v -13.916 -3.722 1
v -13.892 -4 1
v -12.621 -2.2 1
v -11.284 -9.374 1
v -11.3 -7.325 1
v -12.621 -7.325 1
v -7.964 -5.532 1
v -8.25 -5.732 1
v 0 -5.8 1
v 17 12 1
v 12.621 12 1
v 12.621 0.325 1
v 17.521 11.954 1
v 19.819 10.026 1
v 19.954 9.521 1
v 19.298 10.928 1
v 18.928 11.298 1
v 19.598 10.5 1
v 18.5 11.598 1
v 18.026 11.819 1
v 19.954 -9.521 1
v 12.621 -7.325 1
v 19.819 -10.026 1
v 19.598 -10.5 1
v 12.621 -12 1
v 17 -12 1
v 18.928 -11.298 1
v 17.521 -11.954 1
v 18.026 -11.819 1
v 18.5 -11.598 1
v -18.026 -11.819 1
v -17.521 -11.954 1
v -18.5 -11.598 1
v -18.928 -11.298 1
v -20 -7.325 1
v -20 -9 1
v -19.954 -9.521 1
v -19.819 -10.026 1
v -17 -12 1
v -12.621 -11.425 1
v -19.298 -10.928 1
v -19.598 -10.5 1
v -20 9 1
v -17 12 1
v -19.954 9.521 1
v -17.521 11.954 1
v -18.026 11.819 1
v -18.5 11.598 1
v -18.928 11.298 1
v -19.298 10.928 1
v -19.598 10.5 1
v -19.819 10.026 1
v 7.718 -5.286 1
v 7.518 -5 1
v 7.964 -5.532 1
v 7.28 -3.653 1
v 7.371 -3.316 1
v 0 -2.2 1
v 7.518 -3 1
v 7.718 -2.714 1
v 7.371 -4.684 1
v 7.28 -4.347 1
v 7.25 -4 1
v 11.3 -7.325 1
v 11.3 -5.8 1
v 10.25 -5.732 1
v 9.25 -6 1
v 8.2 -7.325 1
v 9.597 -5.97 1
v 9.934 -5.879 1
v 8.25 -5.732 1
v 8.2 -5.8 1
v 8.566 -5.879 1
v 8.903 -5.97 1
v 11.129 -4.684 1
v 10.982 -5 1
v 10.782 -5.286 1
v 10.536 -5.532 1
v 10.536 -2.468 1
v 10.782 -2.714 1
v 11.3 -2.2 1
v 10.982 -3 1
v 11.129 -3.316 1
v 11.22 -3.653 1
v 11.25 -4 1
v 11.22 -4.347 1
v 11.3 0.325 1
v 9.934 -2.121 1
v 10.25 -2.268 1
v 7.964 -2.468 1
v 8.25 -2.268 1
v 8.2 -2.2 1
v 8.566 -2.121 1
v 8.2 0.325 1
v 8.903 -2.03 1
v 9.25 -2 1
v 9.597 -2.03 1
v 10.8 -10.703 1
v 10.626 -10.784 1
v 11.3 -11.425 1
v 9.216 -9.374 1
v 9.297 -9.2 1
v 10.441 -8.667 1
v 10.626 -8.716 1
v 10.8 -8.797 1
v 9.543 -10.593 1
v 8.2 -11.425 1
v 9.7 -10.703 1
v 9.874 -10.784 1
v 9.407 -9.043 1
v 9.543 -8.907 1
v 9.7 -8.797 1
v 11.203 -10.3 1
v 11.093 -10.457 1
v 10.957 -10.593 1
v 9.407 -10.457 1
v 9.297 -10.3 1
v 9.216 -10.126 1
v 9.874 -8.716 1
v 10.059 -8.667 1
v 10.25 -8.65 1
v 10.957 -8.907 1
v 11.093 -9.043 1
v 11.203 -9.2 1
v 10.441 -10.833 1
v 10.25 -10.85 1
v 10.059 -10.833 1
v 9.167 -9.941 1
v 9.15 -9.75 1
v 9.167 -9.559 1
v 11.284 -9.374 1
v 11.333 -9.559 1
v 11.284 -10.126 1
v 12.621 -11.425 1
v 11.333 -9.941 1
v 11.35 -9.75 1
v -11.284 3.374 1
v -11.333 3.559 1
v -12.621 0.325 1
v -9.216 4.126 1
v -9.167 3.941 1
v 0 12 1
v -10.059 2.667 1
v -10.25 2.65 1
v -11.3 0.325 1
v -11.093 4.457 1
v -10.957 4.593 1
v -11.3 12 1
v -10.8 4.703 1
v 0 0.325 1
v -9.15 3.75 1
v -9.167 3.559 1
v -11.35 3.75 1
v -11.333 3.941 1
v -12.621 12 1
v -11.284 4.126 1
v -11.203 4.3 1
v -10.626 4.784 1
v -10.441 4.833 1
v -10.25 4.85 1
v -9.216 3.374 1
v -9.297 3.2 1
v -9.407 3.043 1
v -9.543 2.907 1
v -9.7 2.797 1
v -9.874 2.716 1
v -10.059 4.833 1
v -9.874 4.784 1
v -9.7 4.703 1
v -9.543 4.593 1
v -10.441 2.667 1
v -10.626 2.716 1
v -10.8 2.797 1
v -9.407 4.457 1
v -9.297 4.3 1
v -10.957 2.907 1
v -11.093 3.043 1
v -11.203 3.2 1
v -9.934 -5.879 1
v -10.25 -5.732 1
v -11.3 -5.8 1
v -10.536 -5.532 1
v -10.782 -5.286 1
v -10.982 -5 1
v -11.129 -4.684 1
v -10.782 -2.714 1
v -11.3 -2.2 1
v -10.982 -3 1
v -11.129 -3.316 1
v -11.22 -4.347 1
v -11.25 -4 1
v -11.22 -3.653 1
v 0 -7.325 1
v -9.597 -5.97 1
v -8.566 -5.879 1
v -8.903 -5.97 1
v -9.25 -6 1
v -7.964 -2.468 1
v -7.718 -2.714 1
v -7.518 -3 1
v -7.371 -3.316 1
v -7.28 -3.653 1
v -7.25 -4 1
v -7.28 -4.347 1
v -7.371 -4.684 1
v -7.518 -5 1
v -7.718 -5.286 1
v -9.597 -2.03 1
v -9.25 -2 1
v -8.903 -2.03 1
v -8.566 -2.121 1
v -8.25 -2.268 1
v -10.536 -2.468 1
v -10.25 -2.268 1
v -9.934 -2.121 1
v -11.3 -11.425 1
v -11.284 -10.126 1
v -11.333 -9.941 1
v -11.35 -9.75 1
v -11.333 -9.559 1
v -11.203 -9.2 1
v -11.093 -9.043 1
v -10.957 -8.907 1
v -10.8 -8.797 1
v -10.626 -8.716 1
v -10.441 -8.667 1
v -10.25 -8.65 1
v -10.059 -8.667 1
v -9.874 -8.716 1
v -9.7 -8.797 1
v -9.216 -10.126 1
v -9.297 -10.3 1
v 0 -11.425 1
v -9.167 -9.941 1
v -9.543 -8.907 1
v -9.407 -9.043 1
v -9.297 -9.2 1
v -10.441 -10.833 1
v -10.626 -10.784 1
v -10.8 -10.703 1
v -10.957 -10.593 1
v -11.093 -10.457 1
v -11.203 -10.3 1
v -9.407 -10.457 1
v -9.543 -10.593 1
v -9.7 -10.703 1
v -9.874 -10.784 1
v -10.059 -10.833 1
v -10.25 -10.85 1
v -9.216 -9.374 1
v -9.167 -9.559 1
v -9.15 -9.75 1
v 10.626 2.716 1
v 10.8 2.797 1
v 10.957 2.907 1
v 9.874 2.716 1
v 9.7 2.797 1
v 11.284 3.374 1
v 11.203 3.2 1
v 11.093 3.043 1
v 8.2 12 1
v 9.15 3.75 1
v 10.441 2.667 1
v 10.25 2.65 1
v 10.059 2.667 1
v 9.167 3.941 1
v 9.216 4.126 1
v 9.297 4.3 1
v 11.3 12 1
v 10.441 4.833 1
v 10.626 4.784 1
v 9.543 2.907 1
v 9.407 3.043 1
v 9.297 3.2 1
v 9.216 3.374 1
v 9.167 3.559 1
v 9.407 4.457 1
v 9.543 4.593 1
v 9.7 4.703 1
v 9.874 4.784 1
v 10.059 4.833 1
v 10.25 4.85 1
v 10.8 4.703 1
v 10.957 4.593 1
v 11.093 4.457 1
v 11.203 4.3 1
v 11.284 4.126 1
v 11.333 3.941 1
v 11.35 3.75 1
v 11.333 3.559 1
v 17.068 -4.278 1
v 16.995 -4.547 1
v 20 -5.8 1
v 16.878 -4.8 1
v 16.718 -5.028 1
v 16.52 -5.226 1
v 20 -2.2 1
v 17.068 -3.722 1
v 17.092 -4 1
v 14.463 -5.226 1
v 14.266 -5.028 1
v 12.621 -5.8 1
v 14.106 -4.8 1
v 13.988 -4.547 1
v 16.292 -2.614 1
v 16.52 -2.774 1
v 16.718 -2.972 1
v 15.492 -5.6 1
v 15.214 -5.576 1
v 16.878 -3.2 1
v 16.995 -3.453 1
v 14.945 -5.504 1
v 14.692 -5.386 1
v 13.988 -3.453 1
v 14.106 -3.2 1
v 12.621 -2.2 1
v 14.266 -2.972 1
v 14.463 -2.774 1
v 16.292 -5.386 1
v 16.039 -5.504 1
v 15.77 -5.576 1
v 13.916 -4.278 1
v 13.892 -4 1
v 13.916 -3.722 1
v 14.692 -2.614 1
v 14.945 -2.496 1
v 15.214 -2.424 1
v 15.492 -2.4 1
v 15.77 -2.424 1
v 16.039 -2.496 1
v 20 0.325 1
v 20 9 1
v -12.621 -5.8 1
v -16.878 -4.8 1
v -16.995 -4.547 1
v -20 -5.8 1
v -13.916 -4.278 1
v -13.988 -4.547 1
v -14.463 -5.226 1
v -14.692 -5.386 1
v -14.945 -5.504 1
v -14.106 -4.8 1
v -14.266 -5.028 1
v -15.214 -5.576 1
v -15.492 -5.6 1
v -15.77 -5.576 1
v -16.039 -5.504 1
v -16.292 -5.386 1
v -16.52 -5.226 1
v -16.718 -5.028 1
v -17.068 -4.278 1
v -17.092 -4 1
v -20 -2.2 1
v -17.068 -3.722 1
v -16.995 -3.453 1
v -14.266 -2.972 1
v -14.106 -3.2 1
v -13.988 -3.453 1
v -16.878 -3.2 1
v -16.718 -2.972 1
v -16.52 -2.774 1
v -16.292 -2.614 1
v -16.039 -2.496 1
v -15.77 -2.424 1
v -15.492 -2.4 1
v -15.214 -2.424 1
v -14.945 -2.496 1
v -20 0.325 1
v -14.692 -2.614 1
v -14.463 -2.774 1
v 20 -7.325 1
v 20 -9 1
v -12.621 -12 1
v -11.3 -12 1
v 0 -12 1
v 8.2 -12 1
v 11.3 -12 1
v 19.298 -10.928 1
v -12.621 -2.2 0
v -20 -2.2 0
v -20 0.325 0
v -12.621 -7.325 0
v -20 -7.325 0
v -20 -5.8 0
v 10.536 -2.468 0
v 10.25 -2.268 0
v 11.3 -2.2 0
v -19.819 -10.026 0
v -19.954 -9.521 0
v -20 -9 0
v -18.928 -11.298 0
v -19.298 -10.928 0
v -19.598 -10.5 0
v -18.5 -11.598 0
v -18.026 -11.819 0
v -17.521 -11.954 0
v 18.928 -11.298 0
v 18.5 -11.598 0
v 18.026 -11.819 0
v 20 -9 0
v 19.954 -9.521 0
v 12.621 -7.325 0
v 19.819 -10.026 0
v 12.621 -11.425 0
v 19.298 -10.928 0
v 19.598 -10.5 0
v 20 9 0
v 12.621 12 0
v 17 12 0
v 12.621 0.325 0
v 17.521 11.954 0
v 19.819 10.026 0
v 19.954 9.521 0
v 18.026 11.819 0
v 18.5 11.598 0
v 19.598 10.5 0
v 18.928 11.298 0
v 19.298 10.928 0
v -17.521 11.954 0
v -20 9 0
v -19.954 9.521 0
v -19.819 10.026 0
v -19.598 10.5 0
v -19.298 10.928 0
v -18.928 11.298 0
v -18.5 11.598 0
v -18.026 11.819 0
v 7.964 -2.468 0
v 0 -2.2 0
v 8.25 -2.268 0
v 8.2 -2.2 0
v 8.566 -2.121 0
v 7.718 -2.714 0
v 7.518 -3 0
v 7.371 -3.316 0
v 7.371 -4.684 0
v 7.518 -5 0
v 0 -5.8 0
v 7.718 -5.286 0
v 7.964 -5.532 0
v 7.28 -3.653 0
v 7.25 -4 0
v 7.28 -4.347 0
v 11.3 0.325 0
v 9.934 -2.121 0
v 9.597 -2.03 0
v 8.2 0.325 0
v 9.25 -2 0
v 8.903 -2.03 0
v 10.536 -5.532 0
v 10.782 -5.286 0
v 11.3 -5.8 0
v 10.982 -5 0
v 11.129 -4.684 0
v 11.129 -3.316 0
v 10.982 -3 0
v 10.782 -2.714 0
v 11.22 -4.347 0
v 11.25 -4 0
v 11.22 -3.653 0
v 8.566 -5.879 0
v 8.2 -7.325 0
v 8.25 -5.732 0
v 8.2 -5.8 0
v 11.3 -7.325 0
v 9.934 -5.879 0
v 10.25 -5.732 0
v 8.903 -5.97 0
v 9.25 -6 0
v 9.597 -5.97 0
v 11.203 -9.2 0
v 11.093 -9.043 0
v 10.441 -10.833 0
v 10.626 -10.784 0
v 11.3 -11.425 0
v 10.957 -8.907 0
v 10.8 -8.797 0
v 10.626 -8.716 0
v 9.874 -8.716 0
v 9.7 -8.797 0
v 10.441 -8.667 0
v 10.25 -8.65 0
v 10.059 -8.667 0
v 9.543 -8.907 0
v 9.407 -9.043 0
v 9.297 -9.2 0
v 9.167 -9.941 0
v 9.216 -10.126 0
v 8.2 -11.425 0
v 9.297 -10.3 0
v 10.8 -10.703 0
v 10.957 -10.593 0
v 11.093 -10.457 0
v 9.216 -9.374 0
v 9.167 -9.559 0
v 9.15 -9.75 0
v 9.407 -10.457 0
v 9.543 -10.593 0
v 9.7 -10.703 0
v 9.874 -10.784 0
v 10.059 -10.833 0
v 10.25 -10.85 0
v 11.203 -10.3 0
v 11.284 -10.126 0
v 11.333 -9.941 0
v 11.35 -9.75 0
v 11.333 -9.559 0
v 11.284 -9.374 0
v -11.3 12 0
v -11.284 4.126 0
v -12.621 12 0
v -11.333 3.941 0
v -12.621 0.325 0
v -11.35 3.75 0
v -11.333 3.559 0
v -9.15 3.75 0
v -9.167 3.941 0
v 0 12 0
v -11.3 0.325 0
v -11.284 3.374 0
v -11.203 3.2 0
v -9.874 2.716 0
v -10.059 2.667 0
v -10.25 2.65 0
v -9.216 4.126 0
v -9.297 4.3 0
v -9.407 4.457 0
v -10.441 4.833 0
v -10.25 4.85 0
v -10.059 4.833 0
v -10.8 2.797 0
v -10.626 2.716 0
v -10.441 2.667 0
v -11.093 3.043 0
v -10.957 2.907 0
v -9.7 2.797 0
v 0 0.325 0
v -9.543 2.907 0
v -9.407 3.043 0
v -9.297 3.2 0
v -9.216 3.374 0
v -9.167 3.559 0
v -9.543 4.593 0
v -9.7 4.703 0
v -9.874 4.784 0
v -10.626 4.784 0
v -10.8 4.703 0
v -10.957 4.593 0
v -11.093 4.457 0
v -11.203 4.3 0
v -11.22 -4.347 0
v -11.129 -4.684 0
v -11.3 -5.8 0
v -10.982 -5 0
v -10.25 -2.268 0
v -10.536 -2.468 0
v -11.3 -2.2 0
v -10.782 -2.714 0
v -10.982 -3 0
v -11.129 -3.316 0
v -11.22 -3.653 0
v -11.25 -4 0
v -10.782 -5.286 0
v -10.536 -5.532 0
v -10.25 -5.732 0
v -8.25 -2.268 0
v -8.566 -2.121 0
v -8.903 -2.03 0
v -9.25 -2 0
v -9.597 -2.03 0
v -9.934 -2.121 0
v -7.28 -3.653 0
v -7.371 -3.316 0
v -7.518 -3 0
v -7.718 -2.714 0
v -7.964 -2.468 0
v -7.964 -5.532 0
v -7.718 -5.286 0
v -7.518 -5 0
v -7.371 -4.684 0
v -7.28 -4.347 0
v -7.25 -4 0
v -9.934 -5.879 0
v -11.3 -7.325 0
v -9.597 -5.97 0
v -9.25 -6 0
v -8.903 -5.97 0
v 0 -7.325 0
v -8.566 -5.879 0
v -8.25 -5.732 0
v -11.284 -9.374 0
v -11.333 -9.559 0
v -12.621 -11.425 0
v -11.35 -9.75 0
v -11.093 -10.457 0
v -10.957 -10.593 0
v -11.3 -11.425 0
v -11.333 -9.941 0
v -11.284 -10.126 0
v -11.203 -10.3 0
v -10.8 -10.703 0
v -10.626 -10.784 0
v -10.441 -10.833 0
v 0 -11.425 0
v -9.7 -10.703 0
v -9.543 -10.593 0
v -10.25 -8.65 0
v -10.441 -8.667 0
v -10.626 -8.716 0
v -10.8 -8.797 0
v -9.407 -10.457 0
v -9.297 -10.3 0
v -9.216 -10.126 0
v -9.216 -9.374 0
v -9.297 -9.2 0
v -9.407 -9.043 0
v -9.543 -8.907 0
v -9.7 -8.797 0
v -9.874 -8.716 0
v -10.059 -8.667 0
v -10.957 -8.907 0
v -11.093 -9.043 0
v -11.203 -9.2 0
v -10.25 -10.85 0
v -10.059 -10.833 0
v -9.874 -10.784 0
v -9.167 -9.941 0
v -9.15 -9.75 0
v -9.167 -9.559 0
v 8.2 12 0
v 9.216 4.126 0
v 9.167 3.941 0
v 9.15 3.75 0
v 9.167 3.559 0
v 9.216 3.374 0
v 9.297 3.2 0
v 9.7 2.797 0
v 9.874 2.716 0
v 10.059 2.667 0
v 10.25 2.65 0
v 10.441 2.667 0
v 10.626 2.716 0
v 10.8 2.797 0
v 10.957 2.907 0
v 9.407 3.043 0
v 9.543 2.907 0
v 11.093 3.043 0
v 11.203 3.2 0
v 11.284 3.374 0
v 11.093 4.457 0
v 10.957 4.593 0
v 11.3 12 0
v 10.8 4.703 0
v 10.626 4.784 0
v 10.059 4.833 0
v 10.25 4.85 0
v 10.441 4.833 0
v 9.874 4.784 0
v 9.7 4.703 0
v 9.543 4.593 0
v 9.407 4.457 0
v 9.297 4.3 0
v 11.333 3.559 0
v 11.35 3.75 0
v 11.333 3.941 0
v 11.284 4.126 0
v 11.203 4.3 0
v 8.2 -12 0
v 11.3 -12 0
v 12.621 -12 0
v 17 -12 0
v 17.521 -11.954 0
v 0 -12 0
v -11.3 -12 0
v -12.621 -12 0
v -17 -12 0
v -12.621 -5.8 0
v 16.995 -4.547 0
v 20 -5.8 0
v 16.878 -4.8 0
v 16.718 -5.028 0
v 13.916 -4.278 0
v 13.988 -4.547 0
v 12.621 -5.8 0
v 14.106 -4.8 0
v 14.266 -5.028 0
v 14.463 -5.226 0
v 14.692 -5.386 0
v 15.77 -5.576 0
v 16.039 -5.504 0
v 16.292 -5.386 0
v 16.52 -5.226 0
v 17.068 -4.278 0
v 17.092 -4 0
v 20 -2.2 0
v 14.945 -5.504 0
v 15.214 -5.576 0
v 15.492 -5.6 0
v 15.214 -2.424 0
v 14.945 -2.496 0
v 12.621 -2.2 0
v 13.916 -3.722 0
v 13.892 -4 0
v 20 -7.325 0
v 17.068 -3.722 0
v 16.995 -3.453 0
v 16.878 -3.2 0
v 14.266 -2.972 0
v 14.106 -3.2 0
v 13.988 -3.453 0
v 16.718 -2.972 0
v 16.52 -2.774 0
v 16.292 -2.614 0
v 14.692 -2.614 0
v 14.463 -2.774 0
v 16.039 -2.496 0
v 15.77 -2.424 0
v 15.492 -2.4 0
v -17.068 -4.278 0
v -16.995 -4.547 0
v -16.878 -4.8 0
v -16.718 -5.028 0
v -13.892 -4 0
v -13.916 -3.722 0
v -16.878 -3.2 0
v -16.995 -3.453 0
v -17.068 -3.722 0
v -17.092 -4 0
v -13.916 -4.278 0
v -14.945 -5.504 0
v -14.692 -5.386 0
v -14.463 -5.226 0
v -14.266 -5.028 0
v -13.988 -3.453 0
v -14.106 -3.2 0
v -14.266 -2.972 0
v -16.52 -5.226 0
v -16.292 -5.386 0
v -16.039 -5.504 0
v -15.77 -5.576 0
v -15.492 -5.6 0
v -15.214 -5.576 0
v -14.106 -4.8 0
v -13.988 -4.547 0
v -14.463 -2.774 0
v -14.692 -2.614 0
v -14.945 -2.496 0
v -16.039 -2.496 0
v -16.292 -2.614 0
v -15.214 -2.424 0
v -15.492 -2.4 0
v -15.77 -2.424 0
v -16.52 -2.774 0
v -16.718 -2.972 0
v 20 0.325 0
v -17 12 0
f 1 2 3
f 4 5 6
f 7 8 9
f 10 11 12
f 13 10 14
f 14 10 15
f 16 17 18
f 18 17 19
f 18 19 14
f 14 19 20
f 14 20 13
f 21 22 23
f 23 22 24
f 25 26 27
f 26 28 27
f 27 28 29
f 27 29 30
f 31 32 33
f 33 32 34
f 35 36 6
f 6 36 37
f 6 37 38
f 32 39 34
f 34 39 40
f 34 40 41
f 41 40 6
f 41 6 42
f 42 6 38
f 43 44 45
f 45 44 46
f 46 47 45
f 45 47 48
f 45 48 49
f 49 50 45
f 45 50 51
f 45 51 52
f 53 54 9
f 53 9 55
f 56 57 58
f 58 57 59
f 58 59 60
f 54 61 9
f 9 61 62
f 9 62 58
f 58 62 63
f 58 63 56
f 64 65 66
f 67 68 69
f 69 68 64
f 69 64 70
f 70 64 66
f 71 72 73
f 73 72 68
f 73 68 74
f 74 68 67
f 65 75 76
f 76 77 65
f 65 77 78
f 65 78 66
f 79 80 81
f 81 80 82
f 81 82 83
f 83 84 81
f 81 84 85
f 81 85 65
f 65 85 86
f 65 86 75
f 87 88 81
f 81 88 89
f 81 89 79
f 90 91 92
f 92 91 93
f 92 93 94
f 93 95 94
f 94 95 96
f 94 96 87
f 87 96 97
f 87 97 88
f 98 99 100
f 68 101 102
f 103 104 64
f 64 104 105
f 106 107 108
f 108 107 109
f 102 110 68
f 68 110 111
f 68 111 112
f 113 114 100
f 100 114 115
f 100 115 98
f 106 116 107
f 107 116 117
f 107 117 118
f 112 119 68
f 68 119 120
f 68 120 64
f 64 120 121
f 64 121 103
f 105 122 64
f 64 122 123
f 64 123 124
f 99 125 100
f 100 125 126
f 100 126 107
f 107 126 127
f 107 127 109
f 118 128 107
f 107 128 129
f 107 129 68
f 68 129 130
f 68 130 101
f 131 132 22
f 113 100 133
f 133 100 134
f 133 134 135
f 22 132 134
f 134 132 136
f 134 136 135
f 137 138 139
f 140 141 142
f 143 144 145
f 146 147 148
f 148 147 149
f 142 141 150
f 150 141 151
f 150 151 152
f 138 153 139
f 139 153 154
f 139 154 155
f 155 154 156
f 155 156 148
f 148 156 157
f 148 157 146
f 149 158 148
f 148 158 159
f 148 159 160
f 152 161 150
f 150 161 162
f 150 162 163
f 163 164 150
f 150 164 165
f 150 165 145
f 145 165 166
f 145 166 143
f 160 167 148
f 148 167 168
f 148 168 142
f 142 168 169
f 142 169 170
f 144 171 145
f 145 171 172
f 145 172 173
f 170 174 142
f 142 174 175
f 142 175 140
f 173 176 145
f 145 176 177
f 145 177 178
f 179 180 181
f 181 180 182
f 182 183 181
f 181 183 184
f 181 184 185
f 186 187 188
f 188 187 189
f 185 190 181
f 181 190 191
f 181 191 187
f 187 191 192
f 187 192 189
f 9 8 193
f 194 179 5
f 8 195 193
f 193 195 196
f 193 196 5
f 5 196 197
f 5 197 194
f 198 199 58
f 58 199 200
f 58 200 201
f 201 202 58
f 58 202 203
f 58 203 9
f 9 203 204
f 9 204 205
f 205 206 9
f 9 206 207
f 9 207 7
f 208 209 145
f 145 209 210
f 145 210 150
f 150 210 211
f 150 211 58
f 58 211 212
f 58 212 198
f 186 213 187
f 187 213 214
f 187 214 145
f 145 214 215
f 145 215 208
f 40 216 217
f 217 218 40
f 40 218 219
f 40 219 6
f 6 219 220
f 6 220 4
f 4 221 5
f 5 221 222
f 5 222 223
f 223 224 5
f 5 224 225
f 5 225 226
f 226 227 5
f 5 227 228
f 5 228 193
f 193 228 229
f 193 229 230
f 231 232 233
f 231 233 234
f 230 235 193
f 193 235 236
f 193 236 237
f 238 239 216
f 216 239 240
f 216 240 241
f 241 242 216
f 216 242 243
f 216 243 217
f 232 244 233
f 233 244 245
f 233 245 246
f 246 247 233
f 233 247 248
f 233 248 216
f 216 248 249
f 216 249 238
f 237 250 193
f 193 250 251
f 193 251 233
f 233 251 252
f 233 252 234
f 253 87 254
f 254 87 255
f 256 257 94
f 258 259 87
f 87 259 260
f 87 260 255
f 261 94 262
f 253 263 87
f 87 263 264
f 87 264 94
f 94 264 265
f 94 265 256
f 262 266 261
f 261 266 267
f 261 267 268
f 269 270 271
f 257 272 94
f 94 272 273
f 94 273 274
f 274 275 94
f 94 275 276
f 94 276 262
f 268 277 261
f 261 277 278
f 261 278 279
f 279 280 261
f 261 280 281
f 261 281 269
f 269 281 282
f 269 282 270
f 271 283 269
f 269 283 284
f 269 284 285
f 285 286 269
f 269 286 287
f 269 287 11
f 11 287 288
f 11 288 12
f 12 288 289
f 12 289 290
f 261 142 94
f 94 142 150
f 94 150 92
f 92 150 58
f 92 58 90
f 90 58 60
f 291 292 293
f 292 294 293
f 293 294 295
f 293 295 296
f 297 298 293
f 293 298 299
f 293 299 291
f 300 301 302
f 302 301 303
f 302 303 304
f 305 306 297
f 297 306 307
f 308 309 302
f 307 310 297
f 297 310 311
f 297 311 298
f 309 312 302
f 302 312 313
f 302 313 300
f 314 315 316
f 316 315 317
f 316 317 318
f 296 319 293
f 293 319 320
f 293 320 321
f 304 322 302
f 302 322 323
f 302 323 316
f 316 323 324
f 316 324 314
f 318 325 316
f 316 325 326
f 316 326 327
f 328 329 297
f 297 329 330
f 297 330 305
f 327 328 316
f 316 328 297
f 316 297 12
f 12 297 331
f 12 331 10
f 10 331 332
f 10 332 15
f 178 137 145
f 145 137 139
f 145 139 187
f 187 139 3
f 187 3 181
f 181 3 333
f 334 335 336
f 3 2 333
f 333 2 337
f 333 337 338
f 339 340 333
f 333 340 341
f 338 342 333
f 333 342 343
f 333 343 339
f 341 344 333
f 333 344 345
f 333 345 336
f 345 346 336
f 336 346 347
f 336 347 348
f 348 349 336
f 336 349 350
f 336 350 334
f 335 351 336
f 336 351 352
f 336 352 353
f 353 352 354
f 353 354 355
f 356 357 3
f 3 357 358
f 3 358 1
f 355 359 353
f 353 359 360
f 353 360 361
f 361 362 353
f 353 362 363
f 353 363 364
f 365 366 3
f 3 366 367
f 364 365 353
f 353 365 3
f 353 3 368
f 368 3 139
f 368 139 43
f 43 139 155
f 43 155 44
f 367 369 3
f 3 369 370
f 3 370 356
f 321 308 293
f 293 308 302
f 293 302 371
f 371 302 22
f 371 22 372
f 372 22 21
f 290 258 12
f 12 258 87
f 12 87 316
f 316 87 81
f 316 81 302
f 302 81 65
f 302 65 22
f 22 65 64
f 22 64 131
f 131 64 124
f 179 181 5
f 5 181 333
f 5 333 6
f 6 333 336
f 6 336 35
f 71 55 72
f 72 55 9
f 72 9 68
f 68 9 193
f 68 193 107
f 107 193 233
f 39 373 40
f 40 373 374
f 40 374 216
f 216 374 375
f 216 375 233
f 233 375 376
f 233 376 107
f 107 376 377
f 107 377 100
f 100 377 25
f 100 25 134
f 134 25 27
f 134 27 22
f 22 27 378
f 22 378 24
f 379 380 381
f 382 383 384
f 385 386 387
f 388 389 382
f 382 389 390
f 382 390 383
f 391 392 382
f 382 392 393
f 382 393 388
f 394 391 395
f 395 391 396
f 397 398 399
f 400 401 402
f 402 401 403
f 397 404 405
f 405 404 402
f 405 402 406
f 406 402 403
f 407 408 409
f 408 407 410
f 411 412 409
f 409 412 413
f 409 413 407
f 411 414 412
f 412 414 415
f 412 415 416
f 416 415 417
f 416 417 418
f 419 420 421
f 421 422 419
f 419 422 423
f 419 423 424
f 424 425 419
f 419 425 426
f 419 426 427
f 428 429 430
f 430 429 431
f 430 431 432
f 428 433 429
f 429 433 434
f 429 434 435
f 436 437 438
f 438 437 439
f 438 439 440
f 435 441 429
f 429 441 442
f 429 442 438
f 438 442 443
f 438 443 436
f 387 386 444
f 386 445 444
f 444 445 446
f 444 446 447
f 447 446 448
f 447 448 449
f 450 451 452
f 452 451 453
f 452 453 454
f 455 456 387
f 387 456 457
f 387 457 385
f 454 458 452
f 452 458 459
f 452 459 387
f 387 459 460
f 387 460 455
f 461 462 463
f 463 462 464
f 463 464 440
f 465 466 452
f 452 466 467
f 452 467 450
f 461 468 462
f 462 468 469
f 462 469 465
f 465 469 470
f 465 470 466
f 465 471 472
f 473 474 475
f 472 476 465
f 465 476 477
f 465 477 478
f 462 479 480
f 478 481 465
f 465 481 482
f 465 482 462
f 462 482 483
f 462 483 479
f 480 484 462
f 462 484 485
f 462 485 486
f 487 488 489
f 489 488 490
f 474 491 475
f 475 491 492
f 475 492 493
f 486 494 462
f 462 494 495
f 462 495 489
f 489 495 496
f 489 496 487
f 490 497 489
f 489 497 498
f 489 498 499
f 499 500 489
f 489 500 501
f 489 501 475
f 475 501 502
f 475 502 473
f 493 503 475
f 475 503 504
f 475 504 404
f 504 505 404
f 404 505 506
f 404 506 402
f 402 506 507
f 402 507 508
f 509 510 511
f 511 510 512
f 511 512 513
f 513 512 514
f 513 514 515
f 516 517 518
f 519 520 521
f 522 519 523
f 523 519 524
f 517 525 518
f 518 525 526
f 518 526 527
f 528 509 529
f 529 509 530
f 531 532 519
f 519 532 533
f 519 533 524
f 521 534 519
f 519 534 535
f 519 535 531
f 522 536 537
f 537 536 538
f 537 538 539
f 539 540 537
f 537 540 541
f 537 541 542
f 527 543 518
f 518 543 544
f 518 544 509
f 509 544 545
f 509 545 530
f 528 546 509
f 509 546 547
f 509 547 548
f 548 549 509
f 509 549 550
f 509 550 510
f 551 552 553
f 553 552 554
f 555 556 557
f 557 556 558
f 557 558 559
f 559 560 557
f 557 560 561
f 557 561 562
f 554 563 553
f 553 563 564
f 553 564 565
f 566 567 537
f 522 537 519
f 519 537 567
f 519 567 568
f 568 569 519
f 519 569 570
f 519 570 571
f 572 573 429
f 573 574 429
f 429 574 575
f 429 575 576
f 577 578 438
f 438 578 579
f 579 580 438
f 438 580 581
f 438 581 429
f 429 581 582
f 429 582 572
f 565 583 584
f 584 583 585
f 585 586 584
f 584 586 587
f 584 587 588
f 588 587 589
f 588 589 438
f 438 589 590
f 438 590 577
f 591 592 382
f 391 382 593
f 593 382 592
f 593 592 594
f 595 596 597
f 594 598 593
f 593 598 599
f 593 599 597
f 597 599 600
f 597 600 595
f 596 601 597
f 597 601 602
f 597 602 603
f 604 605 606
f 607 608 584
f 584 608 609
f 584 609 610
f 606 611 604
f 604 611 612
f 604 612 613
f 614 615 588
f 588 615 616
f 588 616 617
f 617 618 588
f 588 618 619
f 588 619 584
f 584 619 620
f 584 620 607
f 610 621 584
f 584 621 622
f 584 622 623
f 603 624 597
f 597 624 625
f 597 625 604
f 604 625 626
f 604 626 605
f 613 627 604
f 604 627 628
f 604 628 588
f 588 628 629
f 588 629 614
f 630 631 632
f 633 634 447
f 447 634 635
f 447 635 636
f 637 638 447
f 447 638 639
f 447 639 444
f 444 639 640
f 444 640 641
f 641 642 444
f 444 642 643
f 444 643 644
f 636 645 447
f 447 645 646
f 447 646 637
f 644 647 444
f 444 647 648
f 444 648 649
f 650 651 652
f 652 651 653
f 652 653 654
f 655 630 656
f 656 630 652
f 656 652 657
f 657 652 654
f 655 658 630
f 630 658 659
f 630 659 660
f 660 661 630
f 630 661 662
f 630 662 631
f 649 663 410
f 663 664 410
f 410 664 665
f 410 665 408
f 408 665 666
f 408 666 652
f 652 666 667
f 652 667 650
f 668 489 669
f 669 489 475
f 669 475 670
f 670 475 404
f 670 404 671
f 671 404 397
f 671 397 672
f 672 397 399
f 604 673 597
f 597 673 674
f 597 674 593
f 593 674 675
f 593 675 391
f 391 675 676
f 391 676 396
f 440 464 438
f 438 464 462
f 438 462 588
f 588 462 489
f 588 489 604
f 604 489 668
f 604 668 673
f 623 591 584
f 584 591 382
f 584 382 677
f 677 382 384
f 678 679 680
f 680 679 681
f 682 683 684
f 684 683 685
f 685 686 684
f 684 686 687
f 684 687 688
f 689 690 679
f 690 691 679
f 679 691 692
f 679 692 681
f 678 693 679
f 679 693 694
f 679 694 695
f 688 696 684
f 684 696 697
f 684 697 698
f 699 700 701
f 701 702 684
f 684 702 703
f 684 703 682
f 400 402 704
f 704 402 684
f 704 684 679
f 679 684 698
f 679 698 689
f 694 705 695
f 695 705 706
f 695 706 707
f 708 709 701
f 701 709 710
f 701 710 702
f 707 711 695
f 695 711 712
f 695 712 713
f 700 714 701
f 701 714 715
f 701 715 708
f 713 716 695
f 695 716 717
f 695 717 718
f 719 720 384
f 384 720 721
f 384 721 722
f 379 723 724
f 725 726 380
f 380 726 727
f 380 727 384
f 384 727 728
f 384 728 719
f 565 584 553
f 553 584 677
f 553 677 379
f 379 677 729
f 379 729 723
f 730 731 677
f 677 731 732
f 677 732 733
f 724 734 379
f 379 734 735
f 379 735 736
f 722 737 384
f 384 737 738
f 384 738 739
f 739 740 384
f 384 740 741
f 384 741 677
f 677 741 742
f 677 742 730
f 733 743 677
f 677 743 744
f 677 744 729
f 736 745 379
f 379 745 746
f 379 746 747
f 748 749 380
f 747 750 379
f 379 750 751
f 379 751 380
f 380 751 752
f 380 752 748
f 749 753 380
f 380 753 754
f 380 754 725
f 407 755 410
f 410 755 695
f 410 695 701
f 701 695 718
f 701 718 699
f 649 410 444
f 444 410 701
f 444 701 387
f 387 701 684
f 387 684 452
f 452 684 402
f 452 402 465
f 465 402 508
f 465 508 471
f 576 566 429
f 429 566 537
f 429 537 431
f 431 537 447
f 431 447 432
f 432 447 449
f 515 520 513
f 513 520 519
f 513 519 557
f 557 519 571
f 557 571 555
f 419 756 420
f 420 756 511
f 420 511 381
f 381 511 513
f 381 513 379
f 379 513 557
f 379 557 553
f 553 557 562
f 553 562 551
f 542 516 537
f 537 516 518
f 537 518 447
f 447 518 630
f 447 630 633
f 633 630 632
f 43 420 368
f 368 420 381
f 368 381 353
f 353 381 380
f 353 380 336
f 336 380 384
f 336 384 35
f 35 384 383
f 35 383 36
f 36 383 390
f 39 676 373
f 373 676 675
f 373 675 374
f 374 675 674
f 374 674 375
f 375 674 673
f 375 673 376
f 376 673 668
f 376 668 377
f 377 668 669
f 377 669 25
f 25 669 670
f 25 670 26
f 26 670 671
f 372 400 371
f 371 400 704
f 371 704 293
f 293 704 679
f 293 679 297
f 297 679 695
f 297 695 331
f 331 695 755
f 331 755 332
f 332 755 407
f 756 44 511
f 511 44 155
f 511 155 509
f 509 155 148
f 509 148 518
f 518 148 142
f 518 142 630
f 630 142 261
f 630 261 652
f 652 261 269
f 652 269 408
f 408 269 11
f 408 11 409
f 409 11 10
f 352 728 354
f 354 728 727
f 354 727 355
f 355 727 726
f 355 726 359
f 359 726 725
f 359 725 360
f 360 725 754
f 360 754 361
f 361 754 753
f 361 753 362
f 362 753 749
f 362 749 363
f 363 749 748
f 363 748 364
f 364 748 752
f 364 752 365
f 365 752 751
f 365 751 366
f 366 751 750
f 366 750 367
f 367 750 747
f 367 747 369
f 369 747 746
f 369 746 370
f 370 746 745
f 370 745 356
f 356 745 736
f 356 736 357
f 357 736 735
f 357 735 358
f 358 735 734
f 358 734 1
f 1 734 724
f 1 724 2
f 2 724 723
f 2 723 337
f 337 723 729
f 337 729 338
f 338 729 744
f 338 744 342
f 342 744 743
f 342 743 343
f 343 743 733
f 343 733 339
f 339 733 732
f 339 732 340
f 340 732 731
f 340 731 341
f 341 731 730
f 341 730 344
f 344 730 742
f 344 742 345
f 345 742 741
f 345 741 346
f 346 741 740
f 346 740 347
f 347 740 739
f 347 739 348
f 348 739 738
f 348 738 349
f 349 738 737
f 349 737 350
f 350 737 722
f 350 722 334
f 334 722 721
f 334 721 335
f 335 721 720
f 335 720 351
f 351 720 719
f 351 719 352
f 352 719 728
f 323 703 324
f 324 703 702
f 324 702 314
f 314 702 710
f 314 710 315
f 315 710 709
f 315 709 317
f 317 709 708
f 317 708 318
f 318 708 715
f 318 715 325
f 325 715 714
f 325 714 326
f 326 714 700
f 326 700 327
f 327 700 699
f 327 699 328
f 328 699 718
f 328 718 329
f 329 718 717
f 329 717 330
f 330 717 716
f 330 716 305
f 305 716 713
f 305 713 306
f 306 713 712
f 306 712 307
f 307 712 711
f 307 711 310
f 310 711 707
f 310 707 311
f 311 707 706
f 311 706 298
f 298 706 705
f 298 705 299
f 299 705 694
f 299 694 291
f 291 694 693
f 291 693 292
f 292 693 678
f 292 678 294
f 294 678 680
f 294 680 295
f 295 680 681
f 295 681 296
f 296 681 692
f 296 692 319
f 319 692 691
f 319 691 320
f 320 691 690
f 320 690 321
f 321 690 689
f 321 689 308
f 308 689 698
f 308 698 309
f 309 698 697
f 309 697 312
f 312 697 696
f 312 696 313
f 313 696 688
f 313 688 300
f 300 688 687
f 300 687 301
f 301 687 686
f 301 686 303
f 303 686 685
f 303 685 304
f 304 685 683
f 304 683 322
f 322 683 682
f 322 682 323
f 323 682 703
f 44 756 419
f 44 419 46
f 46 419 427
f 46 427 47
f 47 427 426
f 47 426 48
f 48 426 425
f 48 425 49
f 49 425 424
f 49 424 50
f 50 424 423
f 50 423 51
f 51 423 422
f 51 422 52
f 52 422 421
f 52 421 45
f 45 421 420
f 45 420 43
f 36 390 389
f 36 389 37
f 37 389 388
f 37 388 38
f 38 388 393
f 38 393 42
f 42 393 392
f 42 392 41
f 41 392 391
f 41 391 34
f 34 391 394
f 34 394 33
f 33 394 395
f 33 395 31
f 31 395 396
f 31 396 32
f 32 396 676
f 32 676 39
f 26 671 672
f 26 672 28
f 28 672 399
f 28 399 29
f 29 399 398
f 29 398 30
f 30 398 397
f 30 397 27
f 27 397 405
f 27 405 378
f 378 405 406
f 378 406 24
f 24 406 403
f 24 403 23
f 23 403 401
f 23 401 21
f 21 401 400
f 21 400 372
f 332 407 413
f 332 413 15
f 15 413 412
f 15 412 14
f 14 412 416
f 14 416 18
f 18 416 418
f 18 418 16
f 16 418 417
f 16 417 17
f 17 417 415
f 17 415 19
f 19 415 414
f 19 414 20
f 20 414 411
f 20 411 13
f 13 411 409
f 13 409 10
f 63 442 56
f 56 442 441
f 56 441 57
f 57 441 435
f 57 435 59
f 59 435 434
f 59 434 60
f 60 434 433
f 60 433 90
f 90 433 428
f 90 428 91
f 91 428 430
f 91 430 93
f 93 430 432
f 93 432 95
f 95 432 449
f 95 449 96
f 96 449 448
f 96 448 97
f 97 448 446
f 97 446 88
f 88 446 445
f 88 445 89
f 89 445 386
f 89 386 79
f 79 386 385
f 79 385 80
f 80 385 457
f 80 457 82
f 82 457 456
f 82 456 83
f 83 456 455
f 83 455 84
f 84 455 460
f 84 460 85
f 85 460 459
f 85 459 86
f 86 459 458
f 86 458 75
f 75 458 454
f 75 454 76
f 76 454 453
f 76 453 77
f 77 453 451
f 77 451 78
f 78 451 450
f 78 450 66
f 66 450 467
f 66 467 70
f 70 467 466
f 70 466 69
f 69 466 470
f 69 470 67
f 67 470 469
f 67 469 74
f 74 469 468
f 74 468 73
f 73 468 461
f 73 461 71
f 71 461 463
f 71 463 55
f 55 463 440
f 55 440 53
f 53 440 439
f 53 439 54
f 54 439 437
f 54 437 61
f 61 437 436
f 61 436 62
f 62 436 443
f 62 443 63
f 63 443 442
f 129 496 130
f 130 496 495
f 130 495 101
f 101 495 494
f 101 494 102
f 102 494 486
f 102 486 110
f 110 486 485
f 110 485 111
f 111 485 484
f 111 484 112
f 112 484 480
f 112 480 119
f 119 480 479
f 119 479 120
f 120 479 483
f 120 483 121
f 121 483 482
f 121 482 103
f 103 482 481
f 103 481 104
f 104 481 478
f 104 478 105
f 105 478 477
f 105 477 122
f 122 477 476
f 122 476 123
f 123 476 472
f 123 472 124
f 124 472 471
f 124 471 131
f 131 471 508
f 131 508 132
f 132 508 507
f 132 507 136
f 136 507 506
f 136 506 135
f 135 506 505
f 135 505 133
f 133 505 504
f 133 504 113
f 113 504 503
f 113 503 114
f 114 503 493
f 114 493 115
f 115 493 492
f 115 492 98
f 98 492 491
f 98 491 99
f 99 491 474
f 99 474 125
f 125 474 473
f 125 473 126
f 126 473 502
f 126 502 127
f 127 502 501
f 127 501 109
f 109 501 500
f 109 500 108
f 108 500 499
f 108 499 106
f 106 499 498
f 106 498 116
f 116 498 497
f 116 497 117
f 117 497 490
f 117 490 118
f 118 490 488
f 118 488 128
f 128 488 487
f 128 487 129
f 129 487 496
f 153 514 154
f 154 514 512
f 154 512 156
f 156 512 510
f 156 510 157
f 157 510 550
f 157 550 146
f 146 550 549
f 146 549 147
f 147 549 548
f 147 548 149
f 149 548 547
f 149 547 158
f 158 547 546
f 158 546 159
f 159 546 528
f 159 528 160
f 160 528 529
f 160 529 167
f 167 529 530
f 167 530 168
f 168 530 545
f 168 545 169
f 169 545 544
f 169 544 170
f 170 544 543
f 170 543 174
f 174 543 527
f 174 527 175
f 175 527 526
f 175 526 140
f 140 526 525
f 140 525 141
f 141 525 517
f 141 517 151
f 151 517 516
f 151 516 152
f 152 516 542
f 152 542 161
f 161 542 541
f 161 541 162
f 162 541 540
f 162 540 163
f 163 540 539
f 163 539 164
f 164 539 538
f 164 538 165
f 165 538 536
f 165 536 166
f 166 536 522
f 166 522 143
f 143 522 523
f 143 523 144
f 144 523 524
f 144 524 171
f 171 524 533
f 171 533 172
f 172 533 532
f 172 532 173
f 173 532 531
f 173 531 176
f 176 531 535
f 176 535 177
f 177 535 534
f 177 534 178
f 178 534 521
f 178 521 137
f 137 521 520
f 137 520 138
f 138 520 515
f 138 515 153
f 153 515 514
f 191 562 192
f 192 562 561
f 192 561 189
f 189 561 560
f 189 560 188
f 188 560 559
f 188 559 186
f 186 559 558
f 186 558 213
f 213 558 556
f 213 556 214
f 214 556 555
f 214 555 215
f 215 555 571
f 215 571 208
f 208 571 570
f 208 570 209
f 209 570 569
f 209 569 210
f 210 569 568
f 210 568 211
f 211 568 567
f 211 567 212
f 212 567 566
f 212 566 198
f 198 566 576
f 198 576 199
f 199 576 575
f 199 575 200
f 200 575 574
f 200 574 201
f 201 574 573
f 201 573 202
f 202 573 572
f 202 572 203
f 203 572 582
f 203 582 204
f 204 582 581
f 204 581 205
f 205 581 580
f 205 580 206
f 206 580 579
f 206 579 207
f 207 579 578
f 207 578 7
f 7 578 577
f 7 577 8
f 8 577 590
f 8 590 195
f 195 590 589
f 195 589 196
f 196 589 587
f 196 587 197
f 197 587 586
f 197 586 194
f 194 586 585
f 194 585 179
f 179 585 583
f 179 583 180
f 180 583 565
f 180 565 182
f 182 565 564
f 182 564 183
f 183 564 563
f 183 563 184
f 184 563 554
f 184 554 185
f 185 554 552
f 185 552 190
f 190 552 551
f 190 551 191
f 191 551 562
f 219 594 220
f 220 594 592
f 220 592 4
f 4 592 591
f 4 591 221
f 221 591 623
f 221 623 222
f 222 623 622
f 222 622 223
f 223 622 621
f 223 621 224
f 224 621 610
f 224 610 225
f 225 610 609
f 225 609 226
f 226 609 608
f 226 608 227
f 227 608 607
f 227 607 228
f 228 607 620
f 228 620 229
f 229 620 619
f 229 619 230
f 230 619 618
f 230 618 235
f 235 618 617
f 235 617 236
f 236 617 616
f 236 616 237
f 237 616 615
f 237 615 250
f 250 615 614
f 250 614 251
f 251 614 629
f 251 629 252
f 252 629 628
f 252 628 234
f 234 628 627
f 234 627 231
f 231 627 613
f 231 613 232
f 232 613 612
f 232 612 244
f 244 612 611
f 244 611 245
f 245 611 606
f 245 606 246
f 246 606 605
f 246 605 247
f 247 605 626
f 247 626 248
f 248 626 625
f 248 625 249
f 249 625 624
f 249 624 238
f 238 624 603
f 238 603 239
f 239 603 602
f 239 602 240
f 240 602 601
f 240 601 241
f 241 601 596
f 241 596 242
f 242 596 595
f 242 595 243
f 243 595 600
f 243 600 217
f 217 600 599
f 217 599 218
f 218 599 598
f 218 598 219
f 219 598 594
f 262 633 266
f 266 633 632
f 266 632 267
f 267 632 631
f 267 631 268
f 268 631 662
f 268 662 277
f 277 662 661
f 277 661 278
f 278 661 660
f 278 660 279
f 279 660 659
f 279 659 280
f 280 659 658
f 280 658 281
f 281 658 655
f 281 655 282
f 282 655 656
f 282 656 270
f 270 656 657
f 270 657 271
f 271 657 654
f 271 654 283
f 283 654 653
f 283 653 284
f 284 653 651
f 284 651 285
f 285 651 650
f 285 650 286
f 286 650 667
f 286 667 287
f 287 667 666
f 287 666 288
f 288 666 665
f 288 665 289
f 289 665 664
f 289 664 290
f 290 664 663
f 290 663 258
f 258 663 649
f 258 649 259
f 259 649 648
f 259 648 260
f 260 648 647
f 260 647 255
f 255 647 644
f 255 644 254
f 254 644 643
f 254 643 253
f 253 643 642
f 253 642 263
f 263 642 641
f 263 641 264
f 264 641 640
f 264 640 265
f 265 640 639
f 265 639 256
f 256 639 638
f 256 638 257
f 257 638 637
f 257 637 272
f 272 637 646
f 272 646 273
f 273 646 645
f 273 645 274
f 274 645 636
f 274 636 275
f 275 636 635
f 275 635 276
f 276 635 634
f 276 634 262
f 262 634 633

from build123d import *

# Parameters (mm, degrees)
SKETCH1_W           = 40
SKETCH1_H           = 24
SKETCH1_R           = 1.6
BOSS_EXTRUDE1_DEPTH = 1
FILLET1_R           = 3
CUT_EXTRUDE1_DEPTH  = 24.34523506


with BuildPart() as part:
    # Sketch1 → Boss-Extrude1 (new body)
    with BuildSketch(Plane.XY):
        Rectangle(SKETCH1_W, SKETCH1_H)
        with Locations((-15.491933385, -4)):
            Circle(SKETCH1_R, mode=Mode.SUBTRACT)
        with Locations(Location((15.491933385, -4, 0), (0, 0, 180))):
            Circle(SKETCH1_R, mode=Mode.SUBTRACT)
    extrude(amount=BOSS_EXTRUDE1_DEPTH)

    # Fillet1
    fillet1_edges = [part.edges().sort_by_distance(p)[0] for p in [
        (-20, 12, 0.5),
        (20, 12, 0.5),
        (20, -12, 0.5),
        (-20, -12, 0.5),
    ]]
    fillet(fillet1_edges, radius=FILLET1_R)

    # Sketch2 → Cut-Extrude1 (cut, through all)
    with BuildSketch(Plane(origin=(0, 0, 0), x_dir=(-1, 0, 0), z_dir=(0, 0, -1))):
        with BuildLine():
            ThreePointArc((10.25, 4.85), (9.15, 3.75), (10.25, 2.65))
            ThreePointArc((10.25, 2.65), (11.35, 3.75), (10.25, 4.85))
        make_face()
        with BuildLine():
            ThreePointArc((10.25, -8.65), (9.15, -9.75), (10.25, -10.85))
            ThreePointArc((10.25, -10.85), (11.35, -9.75), (10.25, -8.65))
        make_face()
        with BuildLine():
            ThreePointArc((-10.25, 4.85), (-11.35, 3.75), (-10.25, 2.65))
            ThreePointArc((-10.25, 2.65), (-9.15, 3.75), (-10.25, 4.85))
        make_face()
        with BuildLine():
            ThreePointArc((-10.25, -8.65), (-11.35, -9.75), (-10.25, -10.85))
            ThreePointArc((-10.25, -10.85), (-9.15, -9.75), (-10.25, -8.65))
        make_face()
        with BuildLine():
            ThreePointArc((-9.25, -6), (-7.25, -4), (-9.25, -2))
            ThreePointArc((-9.25, -2), (-11.25, -4), (-9.25, -6))
        make_face()
        with BuildLine():
            ThreePointArc((9.25, -2), (7.25, -4), (9.25, -6))
            ThreePointArc((9.25, -6), (11.25, -4), (9.25, -2))
        make_face()
    extrude(amount=-CUT_EXTRUDE1_DEPTH, mode=Mode.SUBTRACT)


solid = part.part
